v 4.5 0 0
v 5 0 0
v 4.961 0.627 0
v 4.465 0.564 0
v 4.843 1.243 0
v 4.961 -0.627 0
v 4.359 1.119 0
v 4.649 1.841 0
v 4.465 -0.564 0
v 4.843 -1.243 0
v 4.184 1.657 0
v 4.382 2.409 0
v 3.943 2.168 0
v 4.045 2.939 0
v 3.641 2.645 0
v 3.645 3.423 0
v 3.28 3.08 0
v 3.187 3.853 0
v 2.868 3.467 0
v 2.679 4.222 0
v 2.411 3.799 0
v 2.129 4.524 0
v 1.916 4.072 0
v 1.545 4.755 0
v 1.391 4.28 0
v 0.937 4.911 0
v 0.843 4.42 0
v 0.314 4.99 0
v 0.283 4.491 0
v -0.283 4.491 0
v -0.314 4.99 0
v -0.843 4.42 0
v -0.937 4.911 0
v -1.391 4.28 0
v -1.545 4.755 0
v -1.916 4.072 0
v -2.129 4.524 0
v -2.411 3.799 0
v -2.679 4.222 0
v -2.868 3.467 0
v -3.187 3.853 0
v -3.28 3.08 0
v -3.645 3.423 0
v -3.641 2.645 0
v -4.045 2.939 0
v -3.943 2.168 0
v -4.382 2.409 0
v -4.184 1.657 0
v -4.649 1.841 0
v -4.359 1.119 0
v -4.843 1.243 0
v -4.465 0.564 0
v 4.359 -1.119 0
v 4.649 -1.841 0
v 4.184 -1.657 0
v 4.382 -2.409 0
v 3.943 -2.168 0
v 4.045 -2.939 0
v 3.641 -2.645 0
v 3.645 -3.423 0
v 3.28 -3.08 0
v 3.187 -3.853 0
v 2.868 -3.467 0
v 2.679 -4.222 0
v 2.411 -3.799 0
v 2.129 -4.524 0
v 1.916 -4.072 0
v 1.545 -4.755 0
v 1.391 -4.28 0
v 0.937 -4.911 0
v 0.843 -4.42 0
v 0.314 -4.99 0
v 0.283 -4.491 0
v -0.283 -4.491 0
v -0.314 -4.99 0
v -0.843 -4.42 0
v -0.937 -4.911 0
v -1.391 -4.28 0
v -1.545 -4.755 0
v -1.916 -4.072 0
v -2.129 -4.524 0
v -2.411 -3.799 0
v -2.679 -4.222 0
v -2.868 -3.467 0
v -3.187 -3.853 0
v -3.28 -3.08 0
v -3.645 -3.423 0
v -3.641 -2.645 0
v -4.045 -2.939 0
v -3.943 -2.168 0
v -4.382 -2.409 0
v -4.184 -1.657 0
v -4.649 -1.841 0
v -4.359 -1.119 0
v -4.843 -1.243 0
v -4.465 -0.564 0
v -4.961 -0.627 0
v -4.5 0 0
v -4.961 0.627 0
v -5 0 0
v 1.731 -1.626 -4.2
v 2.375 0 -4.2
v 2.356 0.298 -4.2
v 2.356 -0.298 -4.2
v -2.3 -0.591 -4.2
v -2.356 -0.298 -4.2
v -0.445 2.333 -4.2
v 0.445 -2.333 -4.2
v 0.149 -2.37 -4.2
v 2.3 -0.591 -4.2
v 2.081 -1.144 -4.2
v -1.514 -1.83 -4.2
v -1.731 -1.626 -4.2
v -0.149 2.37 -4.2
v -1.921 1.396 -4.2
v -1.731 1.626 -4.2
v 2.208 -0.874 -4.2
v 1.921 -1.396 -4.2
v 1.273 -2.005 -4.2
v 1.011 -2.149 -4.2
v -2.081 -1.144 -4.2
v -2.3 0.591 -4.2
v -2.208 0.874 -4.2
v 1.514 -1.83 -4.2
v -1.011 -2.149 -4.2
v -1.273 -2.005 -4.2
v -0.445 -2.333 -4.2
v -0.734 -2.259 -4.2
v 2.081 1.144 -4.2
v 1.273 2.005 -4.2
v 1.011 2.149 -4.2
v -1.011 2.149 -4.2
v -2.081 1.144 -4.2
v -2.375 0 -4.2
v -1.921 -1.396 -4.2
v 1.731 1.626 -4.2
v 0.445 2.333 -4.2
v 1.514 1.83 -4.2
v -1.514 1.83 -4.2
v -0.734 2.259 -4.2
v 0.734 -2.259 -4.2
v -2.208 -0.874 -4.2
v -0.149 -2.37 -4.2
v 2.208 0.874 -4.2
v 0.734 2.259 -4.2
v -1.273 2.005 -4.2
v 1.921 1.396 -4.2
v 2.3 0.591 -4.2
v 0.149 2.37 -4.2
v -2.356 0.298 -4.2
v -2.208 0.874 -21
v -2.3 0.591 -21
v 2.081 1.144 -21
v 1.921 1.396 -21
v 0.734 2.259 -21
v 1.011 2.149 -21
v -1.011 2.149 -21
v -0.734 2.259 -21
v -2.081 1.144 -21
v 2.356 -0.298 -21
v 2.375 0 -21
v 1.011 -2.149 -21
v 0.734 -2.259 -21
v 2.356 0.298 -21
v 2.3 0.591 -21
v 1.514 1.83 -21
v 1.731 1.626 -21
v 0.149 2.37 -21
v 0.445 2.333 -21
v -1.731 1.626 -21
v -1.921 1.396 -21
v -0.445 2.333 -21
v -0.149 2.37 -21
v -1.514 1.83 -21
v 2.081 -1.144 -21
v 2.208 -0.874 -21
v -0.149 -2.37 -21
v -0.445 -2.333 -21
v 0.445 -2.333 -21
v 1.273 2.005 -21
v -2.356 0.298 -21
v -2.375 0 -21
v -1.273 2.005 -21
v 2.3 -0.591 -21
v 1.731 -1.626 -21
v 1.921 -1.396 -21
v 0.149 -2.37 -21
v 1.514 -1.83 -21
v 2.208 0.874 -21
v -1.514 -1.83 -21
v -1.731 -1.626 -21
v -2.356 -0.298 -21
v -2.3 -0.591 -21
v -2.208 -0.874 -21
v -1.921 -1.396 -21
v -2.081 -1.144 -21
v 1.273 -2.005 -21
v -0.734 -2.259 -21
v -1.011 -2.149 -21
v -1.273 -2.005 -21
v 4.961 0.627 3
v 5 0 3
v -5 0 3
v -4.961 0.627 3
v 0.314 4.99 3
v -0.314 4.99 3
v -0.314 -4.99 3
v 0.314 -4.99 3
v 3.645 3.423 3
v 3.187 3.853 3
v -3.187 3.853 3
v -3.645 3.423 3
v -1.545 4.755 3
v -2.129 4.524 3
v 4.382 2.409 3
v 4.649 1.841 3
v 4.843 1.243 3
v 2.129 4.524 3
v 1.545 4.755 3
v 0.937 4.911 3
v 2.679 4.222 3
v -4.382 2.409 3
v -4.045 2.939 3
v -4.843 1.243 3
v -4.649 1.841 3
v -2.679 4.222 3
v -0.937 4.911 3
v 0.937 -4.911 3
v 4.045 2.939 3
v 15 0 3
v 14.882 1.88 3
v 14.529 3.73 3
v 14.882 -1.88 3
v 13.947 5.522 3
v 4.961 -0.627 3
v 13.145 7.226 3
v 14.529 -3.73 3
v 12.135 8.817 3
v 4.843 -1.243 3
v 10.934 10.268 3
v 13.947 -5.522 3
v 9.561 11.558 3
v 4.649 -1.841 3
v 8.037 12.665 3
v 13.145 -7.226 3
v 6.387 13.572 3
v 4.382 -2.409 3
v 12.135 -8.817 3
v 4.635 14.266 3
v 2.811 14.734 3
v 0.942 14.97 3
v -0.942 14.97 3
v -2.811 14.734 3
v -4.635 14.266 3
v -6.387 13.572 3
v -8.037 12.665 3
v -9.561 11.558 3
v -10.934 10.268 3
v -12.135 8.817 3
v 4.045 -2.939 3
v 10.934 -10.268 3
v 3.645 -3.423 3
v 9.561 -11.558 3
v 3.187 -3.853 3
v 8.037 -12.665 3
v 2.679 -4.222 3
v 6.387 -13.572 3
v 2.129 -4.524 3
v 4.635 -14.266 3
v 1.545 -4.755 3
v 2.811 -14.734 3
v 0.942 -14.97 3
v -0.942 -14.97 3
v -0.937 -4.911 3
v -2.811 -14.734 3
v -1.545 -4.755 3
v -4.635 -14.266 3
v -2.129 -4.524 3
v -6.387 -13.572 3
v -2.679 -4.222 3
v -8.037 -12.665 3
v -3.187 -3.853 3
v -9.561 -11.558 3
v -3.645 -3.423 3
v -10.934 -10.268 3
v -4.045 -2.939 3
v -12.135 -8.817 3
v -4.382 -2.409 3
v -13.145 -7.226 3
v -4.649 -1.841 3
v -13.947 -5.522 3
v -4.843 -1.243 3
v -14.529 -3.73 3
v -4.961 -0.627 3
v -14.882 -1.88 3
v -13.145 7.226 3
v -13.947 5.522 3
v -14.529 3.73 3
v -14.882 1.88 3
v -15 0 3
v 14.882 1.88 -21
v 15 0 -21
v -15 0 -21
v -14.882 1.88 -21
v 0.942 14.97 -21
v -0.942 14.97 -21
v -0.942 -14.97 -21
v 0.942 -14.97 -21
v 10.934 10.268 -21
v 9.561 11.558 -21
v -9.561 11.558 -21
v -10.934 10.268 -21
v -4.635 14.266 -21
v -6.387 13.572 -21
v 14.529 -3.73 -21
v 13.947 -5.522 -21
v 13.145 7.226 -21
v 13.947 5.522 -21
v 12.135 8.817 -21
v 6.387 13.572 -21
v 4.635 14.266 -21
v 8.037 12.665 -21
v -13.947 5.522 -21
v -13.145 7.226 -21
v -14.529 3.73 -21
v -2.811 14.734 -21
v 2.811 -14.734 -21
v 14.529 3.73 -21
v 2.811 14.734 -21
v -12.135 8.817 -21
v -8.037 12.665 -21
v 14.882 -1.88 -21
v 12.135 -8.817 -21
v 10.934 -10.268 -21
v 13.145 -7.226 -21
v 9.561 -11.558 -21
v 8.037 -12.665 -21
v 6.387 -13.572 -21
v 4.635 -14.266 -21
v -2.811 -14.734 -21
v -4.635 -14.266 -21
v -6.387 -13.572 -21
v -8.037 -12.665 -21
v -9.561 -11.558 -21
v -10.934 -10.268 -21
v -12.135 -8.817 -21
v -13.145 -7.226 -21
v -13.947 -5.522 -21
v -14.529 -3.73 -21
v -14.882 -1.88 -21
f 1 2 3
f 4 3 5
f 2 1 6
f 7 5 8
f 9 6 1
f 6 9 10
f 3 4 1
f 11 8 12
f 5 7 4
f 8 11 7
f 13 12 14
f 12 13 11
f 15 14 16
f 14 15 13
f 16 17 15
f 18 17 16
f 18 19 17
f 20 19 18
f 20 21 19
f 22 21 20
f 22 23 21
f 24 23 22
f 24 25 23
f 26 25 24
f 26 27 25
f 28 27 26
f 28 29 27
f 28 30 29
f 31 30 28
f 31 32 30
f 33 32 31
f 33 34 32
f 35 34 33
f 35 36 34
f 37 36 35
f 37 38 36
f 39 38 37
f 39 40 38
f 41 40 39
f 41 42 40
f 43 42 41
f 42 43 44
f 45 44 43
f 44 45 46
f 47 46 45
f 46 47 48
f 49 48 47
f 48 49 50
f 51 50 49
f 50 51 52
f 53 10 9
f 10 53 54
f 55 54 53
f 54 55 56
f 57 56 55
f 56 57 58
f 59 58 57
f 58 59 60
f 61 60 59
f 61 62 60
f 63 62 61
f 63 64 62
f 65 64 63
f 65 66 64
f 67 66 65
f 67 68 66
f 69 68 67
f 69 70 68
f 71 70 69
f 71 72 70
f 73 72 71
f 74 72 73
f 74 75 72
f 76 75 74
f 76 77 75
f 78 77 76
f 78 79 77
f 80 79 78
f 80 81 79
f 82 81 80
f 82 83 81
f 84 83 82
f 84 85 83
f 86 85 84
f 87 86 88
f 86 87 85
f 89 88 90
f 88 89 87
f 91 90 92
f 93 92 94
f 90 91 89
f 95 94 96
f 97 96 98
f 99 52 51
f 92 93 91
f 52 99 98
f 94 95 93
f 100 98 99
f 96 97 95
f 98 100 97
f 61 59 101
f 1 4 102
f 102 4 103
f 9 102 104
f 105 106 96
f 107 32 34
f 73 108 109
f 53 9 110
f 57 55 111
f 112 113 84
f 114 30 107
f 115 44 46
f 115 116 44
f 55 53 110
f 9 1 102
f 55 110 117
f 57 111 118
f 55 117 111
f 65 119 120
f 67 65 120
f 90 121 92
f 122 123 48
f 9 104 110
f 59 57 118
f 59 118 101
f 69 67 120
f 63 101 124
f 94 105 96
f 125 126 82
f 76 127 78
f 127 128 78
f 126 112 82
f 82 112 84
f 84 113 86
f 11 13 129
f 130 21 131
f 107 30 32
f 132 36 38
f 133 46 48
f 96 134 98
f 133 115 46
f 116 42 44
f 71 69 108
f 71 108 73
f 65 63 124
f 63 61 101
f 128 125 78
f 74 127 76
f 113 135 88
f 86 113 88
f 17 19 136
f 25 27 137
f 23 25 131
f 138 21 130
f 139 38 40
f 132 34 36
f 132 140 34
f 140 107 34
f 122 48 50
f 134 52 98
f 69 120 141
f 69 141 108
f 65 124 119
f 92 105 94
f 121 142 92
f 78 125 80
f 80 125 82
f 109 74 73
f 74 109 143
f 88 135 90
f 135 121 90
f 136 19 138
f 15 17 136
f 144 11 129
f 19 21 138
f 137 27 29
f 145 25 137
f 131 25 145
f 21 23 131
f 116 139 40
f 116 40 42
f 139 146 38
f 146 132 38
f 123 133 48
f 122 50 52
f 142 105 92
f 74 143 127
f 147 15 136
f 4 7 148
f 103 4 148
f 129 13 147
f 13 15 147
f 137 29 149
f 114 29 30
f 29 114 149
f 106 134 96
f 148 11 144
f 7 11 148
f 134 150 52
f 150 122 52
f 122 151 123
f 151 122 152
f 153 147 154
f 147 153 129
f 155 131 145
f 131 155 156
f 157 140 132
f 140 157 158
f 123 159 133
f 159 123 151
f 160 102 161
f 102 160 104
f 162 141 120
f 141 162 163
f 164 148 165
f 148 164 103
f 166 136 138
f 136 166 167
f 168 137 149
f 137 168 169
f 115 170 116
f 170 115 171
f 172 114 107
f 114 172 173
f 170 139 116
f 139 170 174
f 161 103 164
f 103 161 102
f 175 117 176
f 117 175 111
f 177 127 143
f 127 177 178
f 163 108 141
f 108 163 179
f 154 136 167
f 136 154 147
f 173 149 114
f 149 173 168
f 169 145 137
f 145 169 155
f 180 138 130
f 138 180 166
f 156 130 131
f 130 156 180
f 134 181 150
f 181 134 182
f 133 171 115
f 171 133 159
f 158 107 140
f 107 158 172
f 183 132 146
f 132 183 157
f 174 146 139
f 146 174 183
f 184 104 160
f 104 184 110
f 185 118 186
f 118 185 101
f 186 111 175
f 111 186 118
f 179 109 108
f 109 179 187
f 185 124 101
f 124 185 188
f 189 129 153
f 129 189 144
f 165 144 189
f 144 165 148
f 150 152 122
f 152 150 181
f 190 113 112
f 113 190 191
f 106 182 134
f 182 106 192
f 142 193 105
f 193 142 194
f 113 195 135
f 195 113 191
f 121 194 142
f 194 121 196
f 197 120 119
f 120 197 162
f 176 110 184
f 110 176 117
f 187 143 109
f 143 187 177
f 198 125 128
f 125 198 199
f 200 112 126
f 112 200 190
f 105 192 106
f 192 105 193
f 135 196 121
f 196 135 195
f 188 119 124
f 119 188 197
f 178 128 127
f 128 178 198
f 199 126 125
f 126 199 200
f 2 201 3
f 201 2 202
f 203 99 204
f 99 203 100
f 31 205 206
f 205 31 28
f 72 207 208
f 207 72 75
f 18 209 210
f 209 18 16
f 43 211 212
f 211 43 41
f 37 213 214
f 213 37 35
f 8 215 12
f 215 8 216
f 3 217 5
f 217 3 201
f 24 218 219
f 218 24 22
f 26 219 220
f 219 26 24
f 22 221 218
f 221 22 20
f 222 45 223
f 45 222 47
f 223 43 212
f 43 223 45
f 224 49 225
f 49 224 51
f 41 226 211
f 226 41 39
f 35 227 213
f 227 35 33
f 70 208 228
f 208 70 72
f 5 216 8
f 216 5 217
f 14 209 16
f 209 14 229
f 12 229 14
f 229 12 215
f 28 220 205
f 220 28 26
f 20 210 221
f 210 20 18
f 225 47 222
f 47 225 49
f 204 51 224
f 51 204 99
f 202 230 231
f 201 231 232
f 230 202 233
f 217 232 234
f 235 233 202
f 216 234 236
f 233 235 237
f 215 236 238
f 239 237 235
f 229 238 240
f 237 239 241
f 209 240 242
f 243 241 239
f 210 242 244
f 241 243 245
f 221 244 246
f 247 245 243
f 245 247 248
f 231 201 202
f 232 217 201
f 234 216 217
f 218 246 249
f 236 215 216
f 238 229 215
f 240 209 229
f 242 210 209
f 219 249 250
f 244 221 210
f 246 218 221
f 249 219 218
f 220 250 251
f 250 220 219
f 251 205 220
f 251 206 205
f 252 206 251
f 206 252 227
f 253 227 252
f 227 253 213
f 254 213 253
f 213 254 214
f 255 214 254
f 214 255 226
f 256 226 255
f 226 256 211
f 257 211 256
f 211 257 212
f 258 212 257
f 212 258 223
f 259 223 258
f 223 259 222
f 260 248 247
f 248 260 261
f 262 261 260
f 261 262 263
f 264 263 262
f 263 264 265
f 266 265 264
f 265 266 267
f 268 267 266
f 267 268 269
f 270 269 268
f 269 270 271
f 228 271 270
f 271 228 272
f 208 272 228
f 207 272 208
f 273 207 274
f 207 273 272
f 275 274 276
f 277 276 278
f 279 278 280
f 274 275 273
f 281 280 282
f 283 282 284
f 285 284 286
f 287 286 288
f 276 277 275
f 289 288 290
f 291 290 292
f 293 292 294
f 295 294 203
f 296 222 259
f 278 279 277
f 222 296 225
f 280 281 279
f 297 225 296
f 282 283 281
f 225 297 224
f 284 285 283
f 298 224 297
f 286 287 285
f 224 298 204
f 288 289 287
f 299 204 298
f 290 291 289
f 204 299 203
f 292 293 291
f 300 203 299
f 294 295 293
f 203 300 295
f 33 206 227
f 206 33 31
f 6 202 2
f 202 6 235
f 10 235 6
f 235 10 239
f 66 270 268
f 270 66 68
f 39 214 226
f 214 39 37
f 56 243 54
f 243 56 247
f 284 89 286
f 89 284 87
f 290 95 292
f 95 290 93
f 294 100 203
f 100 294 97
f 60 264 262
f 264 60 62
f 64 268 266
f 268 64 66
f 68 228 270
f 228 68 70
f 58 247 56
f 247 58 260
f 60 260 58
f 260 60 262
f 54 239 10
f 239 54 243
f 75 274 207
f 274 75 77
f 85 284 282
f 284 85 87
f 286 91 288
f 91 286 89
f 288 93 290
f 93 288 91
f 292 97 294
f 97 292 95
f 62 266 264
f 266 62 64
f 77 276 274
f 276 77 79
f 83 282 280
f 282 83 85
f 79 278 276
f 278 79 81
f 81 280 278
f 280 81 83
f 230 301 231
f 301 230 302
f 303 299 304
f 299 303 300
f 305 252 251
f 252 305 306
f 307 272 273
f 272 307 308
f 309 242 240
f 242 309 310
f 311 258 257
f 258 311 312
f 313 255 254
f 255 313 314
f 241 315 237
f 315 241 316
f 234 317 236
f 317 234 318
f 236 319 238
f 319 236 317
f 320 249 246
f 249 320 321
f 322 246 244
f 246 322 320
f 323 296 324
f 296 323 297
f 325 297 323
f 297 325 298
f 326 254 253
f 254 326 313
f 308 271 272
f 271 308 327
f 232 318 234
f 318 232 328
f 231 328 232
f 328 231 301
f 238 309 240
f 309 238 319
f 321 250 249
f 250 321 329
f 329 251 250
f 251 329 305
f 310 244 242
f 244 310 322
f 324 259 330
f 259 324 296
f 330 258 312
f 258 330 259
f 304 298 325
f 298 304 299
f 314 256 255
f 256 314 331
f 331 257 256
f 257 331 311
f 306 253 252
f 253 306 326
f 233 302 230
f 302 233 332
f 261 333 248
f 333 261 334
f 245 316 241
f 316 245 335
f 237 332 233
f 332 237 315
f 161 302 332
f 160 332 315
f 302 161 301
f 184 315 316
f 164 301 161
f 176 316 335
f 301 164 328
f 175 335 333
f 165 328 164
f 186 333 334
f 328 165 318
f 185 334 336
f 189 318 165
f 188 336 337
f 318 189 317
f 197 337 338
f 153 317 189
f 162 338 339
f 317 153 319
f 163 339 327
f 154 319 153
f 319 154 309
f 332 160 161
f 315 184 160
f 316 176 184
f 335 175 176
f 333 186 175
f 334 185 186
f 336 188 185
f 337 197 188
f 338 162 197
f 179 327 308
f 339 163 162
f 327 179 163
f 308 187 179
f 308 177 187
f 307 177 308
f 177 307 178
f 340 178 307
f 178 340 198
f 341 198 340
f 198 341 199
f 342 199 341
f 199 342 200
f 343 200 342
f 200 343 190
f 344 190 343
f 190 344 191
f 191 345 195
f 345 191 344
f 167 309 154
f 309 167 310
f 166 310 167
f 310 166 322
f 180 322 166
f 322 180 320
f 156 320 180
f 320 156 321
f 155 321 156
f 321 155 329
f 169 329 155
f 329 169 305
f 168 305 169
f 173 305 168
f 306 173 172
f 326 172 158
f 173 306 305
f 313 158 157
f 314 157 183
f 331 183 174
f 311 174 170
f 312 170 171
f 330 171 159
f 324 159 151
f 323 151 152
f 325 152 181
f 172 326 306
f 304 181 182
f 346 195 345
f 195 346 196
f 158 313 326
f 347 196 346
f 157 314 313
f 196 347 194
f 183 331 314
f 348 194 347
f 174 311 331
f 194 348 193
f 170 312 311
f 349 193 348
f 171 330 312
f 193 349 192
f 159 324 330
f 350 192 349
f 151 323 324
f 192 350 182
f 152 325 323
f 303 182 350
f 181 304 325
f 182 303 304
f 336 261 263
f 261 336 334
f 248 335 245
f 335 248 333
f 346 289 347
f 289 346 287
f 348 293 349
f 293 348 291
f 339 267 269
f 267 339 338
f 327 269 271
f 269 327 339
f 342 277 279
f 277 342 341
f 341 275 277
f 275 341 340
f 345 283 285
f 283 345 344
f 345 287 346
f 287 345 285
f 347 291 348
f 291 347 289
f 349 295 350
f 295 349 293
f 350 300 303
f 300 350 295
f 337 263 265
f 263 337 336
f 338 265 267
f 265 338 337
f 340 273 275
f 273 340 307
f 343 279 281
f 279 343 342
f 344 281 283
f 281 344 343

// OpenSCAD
$fn = 50;


difference() {
	union() {
		translate(v = [0, 0, -21.0000000000]) {
			cylinder(h = 24, r = 15.0000000000);
		}
	}
	union() {
		translate(v = [0, 0, 0]) {
			rotate(a = [0, 0, 0]) {
				difference() {
					union() {
						translate(v = [0, 0, -24.0000000000]) {
							cylinder(h = 24, r = 2.2500000000);
						}
						translate(v = [0, 0, -4.2000000000]) {
							cylinder(h = 4.2000000000, r1 = 2.3750000000, r2 = 4.5000000000);
						}
						translate(v = [0, 0, -24.0000000000]) {
							cylinder(h = 24, r = 2.3750000000);
						}
						translate(v = [0, 0, -24.0000000000]) {
							cylinder(h = 24, r = 2.2500000000);
						}
					}
					union();
				}
			}
		}
		#cylinder(h = 3, r = 5.0000000000);
	}
}
